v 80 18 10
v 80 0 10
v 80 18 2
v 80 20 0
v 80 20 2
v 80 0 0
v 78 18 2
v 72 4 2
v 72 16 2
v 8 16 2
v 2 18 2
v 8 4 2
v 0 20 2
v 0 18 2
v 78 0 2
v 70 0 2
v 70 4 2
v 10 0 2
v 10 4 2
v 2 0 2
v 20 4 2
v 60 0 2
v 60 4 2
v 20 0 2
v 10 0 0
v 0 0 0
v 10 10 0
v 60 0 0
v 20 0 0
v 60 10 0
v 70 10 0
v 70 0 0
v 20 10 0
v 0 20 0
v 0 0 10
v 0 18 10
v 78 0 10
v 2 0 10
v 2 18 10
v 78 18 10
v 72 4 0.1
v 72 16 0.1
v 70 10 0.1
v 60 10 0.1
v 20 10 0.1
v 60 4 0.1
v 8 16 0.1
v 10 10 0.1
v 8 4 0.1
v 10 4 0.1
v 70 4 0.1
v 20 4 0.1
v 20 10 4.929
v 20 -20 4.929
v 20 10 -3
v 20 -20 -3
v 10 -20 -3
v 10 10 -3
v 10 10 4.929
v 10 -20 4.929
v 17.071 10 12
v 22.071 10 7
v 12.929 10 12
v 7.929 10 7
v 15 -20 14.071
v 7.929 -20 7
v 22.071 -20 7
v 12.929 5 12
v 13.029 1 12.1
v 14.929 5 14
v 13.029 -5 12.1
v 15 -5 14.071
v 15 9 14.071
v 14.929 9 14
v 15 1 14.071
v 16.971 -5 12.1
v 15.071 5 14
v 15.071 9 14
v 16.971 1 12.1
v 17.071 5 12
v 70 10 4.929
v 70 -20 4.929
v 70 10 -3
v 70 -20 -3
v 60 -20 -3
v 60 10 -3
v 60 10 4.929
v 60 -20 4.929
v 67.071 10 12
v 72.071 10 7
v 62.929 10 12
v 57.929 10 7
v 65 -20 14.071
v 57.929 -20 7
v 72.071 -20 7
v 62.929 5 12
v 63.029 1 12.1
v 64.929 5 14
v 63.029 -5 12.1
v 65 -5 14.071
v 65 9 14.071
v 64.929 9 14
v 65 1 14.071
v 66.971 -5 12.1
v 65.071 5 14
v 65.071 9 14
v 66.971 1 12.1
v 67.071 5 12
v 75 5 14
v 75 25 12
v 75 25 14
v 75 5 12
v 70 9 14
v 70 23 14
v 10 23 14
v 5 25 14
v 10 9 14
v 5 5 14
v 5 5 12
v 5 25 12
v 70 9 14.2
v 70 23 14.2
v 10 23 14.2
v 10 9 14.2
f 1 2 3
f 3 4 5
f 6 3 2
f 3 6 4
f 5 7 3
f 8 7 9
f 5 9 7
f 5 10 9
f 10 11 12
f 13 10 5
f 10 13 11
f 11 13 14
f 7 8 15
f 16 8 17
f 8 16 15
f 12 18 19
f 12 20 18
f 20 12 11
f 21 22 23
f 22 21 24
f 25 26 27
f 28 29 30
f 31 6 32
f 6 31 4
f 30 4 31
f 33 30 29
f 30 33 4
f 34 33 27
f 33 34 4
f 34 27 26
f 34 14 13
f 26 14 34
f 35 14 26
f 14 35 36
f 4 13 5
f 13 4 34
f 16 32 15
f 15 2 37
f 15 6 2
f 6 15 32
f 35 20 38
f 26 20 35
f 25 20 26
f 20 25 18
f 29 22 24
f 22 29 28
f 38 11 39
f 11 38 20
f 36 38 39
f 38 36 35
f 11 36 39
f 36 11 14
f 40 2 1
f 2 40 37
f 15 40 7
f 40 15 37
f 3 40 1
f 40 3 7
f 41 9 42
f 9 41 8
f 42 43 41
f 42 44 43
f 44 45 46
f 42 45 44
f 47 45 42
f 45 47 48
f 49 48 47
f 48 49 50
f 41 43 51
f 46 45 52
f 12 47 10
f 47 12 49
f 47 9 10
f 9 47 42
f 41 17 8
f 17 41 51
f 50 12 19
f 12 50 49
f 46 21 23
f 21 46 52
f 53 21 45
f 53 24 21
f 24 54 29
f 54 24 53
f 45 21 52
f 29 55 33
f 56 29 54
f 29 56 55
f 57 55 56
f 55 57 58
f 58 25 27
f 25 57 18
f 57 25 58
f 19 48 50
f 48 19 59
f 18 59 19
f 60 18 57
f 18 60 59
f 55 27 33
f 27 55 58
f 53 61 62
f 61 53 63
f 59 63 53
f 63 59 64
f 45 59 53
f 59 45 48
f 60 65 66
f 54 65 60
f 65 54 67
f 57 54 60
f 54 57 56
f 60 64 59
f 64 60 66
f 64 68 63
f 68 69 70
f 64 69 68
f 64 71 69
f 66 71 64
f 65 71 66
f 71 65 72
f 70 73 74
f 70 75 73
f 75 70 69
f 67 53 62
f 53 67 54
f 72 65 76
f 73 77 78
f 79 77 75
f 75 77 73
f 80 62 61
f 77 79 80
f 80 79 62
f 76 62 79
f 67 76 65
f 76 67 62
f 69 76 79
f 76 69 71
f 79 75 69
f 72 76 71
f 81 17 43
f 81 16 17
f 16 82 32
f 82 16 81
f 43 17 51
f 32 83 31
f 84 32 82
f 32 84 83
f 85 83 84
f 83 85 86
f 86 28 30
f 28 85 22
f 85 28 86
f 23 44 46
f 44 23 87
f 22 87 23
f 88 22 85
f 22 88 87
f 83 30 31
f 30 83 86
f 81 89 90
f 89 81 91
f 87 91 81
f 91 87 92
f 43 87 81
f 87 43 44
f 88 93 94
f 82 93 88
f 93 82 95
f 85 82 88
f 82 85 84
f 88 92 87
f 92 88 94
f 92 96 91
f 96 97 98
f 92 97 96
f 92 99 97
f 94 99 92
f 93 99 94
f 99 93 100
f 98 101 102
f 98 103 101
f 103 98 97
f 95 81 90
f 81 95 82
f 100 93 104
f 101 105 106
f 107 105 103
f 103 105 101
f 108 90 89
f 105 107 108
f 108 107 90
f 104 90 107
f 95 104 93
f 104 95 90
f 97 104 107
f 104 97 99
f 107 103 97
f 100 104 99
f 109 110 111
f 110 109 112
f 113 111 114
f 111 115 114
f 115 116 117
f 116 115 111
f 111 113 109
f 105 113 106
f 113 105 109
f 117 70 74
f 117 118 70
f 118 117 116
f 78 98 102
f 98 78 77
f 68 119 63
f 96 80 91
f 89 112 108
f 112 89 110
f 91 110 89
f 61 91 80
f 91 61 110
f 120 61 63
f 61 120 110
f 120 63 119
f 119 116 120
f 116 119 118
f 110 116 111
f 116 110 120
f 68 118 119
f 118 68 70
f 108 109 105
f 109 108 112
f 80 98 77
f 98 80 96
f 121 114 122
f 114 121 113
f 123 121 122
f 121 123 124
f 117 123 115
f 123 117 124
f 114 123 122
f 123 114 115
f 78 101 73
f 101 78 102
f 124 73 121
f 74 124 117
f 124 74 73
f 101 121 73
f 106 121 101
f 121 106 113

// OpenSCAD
// Base Frame
module base_frame() {
    difference() {
        union() {
            translate([0, 0, 0]) cube([80, 20, 2]); // Main frame
            translate([0, 0, 0]) cube([2, 18, 10]); // Elongated legs
            translate([78, 0, 0]) cube([2, 18, 10]);
        }
        translate([8, 4, 0.1]) cube([64, 12, 2.1]); // Cut-out windows
    }
}

// Support Wedge
module support_wedge() {
    difference() {
        translate([0, 0, 0]) {
            cube([10, 30, 10], true); // Base
            translate([0, 0, 5]) rotate([0, -45, 0]) cube([10, 30, 10], true); // Sloped surface
        }
        translate([-3, 0, 10.1]) cube([6, 6, 2.1]); // Hollow connecting slot
    }
}

// Inner Bracket
module inner_bracket() {
    difference() {
        union() {
            translate([5, 5, 0]) cube([70, 20, 2]); // Flat piece
            translate([10, 9, 0.1]) cube([60, 14, 2.1]); // Central cutout
        }
    }
}

// Assembly
module assembly() {
    // Base Frame at the bottom
    translate([0, 0, 0]) base_frame();

    // Support Wedges layer above base frame
    translate([15, -5, 2]) support_wedge(); // Left wedge
    translate([65, -5, 2]) support_wedge(); // Right wedge

    // Inner Bracket at the top
    translate([0, 0, 12]) inner_bracket();
}

// Render the assembly
assembly();
